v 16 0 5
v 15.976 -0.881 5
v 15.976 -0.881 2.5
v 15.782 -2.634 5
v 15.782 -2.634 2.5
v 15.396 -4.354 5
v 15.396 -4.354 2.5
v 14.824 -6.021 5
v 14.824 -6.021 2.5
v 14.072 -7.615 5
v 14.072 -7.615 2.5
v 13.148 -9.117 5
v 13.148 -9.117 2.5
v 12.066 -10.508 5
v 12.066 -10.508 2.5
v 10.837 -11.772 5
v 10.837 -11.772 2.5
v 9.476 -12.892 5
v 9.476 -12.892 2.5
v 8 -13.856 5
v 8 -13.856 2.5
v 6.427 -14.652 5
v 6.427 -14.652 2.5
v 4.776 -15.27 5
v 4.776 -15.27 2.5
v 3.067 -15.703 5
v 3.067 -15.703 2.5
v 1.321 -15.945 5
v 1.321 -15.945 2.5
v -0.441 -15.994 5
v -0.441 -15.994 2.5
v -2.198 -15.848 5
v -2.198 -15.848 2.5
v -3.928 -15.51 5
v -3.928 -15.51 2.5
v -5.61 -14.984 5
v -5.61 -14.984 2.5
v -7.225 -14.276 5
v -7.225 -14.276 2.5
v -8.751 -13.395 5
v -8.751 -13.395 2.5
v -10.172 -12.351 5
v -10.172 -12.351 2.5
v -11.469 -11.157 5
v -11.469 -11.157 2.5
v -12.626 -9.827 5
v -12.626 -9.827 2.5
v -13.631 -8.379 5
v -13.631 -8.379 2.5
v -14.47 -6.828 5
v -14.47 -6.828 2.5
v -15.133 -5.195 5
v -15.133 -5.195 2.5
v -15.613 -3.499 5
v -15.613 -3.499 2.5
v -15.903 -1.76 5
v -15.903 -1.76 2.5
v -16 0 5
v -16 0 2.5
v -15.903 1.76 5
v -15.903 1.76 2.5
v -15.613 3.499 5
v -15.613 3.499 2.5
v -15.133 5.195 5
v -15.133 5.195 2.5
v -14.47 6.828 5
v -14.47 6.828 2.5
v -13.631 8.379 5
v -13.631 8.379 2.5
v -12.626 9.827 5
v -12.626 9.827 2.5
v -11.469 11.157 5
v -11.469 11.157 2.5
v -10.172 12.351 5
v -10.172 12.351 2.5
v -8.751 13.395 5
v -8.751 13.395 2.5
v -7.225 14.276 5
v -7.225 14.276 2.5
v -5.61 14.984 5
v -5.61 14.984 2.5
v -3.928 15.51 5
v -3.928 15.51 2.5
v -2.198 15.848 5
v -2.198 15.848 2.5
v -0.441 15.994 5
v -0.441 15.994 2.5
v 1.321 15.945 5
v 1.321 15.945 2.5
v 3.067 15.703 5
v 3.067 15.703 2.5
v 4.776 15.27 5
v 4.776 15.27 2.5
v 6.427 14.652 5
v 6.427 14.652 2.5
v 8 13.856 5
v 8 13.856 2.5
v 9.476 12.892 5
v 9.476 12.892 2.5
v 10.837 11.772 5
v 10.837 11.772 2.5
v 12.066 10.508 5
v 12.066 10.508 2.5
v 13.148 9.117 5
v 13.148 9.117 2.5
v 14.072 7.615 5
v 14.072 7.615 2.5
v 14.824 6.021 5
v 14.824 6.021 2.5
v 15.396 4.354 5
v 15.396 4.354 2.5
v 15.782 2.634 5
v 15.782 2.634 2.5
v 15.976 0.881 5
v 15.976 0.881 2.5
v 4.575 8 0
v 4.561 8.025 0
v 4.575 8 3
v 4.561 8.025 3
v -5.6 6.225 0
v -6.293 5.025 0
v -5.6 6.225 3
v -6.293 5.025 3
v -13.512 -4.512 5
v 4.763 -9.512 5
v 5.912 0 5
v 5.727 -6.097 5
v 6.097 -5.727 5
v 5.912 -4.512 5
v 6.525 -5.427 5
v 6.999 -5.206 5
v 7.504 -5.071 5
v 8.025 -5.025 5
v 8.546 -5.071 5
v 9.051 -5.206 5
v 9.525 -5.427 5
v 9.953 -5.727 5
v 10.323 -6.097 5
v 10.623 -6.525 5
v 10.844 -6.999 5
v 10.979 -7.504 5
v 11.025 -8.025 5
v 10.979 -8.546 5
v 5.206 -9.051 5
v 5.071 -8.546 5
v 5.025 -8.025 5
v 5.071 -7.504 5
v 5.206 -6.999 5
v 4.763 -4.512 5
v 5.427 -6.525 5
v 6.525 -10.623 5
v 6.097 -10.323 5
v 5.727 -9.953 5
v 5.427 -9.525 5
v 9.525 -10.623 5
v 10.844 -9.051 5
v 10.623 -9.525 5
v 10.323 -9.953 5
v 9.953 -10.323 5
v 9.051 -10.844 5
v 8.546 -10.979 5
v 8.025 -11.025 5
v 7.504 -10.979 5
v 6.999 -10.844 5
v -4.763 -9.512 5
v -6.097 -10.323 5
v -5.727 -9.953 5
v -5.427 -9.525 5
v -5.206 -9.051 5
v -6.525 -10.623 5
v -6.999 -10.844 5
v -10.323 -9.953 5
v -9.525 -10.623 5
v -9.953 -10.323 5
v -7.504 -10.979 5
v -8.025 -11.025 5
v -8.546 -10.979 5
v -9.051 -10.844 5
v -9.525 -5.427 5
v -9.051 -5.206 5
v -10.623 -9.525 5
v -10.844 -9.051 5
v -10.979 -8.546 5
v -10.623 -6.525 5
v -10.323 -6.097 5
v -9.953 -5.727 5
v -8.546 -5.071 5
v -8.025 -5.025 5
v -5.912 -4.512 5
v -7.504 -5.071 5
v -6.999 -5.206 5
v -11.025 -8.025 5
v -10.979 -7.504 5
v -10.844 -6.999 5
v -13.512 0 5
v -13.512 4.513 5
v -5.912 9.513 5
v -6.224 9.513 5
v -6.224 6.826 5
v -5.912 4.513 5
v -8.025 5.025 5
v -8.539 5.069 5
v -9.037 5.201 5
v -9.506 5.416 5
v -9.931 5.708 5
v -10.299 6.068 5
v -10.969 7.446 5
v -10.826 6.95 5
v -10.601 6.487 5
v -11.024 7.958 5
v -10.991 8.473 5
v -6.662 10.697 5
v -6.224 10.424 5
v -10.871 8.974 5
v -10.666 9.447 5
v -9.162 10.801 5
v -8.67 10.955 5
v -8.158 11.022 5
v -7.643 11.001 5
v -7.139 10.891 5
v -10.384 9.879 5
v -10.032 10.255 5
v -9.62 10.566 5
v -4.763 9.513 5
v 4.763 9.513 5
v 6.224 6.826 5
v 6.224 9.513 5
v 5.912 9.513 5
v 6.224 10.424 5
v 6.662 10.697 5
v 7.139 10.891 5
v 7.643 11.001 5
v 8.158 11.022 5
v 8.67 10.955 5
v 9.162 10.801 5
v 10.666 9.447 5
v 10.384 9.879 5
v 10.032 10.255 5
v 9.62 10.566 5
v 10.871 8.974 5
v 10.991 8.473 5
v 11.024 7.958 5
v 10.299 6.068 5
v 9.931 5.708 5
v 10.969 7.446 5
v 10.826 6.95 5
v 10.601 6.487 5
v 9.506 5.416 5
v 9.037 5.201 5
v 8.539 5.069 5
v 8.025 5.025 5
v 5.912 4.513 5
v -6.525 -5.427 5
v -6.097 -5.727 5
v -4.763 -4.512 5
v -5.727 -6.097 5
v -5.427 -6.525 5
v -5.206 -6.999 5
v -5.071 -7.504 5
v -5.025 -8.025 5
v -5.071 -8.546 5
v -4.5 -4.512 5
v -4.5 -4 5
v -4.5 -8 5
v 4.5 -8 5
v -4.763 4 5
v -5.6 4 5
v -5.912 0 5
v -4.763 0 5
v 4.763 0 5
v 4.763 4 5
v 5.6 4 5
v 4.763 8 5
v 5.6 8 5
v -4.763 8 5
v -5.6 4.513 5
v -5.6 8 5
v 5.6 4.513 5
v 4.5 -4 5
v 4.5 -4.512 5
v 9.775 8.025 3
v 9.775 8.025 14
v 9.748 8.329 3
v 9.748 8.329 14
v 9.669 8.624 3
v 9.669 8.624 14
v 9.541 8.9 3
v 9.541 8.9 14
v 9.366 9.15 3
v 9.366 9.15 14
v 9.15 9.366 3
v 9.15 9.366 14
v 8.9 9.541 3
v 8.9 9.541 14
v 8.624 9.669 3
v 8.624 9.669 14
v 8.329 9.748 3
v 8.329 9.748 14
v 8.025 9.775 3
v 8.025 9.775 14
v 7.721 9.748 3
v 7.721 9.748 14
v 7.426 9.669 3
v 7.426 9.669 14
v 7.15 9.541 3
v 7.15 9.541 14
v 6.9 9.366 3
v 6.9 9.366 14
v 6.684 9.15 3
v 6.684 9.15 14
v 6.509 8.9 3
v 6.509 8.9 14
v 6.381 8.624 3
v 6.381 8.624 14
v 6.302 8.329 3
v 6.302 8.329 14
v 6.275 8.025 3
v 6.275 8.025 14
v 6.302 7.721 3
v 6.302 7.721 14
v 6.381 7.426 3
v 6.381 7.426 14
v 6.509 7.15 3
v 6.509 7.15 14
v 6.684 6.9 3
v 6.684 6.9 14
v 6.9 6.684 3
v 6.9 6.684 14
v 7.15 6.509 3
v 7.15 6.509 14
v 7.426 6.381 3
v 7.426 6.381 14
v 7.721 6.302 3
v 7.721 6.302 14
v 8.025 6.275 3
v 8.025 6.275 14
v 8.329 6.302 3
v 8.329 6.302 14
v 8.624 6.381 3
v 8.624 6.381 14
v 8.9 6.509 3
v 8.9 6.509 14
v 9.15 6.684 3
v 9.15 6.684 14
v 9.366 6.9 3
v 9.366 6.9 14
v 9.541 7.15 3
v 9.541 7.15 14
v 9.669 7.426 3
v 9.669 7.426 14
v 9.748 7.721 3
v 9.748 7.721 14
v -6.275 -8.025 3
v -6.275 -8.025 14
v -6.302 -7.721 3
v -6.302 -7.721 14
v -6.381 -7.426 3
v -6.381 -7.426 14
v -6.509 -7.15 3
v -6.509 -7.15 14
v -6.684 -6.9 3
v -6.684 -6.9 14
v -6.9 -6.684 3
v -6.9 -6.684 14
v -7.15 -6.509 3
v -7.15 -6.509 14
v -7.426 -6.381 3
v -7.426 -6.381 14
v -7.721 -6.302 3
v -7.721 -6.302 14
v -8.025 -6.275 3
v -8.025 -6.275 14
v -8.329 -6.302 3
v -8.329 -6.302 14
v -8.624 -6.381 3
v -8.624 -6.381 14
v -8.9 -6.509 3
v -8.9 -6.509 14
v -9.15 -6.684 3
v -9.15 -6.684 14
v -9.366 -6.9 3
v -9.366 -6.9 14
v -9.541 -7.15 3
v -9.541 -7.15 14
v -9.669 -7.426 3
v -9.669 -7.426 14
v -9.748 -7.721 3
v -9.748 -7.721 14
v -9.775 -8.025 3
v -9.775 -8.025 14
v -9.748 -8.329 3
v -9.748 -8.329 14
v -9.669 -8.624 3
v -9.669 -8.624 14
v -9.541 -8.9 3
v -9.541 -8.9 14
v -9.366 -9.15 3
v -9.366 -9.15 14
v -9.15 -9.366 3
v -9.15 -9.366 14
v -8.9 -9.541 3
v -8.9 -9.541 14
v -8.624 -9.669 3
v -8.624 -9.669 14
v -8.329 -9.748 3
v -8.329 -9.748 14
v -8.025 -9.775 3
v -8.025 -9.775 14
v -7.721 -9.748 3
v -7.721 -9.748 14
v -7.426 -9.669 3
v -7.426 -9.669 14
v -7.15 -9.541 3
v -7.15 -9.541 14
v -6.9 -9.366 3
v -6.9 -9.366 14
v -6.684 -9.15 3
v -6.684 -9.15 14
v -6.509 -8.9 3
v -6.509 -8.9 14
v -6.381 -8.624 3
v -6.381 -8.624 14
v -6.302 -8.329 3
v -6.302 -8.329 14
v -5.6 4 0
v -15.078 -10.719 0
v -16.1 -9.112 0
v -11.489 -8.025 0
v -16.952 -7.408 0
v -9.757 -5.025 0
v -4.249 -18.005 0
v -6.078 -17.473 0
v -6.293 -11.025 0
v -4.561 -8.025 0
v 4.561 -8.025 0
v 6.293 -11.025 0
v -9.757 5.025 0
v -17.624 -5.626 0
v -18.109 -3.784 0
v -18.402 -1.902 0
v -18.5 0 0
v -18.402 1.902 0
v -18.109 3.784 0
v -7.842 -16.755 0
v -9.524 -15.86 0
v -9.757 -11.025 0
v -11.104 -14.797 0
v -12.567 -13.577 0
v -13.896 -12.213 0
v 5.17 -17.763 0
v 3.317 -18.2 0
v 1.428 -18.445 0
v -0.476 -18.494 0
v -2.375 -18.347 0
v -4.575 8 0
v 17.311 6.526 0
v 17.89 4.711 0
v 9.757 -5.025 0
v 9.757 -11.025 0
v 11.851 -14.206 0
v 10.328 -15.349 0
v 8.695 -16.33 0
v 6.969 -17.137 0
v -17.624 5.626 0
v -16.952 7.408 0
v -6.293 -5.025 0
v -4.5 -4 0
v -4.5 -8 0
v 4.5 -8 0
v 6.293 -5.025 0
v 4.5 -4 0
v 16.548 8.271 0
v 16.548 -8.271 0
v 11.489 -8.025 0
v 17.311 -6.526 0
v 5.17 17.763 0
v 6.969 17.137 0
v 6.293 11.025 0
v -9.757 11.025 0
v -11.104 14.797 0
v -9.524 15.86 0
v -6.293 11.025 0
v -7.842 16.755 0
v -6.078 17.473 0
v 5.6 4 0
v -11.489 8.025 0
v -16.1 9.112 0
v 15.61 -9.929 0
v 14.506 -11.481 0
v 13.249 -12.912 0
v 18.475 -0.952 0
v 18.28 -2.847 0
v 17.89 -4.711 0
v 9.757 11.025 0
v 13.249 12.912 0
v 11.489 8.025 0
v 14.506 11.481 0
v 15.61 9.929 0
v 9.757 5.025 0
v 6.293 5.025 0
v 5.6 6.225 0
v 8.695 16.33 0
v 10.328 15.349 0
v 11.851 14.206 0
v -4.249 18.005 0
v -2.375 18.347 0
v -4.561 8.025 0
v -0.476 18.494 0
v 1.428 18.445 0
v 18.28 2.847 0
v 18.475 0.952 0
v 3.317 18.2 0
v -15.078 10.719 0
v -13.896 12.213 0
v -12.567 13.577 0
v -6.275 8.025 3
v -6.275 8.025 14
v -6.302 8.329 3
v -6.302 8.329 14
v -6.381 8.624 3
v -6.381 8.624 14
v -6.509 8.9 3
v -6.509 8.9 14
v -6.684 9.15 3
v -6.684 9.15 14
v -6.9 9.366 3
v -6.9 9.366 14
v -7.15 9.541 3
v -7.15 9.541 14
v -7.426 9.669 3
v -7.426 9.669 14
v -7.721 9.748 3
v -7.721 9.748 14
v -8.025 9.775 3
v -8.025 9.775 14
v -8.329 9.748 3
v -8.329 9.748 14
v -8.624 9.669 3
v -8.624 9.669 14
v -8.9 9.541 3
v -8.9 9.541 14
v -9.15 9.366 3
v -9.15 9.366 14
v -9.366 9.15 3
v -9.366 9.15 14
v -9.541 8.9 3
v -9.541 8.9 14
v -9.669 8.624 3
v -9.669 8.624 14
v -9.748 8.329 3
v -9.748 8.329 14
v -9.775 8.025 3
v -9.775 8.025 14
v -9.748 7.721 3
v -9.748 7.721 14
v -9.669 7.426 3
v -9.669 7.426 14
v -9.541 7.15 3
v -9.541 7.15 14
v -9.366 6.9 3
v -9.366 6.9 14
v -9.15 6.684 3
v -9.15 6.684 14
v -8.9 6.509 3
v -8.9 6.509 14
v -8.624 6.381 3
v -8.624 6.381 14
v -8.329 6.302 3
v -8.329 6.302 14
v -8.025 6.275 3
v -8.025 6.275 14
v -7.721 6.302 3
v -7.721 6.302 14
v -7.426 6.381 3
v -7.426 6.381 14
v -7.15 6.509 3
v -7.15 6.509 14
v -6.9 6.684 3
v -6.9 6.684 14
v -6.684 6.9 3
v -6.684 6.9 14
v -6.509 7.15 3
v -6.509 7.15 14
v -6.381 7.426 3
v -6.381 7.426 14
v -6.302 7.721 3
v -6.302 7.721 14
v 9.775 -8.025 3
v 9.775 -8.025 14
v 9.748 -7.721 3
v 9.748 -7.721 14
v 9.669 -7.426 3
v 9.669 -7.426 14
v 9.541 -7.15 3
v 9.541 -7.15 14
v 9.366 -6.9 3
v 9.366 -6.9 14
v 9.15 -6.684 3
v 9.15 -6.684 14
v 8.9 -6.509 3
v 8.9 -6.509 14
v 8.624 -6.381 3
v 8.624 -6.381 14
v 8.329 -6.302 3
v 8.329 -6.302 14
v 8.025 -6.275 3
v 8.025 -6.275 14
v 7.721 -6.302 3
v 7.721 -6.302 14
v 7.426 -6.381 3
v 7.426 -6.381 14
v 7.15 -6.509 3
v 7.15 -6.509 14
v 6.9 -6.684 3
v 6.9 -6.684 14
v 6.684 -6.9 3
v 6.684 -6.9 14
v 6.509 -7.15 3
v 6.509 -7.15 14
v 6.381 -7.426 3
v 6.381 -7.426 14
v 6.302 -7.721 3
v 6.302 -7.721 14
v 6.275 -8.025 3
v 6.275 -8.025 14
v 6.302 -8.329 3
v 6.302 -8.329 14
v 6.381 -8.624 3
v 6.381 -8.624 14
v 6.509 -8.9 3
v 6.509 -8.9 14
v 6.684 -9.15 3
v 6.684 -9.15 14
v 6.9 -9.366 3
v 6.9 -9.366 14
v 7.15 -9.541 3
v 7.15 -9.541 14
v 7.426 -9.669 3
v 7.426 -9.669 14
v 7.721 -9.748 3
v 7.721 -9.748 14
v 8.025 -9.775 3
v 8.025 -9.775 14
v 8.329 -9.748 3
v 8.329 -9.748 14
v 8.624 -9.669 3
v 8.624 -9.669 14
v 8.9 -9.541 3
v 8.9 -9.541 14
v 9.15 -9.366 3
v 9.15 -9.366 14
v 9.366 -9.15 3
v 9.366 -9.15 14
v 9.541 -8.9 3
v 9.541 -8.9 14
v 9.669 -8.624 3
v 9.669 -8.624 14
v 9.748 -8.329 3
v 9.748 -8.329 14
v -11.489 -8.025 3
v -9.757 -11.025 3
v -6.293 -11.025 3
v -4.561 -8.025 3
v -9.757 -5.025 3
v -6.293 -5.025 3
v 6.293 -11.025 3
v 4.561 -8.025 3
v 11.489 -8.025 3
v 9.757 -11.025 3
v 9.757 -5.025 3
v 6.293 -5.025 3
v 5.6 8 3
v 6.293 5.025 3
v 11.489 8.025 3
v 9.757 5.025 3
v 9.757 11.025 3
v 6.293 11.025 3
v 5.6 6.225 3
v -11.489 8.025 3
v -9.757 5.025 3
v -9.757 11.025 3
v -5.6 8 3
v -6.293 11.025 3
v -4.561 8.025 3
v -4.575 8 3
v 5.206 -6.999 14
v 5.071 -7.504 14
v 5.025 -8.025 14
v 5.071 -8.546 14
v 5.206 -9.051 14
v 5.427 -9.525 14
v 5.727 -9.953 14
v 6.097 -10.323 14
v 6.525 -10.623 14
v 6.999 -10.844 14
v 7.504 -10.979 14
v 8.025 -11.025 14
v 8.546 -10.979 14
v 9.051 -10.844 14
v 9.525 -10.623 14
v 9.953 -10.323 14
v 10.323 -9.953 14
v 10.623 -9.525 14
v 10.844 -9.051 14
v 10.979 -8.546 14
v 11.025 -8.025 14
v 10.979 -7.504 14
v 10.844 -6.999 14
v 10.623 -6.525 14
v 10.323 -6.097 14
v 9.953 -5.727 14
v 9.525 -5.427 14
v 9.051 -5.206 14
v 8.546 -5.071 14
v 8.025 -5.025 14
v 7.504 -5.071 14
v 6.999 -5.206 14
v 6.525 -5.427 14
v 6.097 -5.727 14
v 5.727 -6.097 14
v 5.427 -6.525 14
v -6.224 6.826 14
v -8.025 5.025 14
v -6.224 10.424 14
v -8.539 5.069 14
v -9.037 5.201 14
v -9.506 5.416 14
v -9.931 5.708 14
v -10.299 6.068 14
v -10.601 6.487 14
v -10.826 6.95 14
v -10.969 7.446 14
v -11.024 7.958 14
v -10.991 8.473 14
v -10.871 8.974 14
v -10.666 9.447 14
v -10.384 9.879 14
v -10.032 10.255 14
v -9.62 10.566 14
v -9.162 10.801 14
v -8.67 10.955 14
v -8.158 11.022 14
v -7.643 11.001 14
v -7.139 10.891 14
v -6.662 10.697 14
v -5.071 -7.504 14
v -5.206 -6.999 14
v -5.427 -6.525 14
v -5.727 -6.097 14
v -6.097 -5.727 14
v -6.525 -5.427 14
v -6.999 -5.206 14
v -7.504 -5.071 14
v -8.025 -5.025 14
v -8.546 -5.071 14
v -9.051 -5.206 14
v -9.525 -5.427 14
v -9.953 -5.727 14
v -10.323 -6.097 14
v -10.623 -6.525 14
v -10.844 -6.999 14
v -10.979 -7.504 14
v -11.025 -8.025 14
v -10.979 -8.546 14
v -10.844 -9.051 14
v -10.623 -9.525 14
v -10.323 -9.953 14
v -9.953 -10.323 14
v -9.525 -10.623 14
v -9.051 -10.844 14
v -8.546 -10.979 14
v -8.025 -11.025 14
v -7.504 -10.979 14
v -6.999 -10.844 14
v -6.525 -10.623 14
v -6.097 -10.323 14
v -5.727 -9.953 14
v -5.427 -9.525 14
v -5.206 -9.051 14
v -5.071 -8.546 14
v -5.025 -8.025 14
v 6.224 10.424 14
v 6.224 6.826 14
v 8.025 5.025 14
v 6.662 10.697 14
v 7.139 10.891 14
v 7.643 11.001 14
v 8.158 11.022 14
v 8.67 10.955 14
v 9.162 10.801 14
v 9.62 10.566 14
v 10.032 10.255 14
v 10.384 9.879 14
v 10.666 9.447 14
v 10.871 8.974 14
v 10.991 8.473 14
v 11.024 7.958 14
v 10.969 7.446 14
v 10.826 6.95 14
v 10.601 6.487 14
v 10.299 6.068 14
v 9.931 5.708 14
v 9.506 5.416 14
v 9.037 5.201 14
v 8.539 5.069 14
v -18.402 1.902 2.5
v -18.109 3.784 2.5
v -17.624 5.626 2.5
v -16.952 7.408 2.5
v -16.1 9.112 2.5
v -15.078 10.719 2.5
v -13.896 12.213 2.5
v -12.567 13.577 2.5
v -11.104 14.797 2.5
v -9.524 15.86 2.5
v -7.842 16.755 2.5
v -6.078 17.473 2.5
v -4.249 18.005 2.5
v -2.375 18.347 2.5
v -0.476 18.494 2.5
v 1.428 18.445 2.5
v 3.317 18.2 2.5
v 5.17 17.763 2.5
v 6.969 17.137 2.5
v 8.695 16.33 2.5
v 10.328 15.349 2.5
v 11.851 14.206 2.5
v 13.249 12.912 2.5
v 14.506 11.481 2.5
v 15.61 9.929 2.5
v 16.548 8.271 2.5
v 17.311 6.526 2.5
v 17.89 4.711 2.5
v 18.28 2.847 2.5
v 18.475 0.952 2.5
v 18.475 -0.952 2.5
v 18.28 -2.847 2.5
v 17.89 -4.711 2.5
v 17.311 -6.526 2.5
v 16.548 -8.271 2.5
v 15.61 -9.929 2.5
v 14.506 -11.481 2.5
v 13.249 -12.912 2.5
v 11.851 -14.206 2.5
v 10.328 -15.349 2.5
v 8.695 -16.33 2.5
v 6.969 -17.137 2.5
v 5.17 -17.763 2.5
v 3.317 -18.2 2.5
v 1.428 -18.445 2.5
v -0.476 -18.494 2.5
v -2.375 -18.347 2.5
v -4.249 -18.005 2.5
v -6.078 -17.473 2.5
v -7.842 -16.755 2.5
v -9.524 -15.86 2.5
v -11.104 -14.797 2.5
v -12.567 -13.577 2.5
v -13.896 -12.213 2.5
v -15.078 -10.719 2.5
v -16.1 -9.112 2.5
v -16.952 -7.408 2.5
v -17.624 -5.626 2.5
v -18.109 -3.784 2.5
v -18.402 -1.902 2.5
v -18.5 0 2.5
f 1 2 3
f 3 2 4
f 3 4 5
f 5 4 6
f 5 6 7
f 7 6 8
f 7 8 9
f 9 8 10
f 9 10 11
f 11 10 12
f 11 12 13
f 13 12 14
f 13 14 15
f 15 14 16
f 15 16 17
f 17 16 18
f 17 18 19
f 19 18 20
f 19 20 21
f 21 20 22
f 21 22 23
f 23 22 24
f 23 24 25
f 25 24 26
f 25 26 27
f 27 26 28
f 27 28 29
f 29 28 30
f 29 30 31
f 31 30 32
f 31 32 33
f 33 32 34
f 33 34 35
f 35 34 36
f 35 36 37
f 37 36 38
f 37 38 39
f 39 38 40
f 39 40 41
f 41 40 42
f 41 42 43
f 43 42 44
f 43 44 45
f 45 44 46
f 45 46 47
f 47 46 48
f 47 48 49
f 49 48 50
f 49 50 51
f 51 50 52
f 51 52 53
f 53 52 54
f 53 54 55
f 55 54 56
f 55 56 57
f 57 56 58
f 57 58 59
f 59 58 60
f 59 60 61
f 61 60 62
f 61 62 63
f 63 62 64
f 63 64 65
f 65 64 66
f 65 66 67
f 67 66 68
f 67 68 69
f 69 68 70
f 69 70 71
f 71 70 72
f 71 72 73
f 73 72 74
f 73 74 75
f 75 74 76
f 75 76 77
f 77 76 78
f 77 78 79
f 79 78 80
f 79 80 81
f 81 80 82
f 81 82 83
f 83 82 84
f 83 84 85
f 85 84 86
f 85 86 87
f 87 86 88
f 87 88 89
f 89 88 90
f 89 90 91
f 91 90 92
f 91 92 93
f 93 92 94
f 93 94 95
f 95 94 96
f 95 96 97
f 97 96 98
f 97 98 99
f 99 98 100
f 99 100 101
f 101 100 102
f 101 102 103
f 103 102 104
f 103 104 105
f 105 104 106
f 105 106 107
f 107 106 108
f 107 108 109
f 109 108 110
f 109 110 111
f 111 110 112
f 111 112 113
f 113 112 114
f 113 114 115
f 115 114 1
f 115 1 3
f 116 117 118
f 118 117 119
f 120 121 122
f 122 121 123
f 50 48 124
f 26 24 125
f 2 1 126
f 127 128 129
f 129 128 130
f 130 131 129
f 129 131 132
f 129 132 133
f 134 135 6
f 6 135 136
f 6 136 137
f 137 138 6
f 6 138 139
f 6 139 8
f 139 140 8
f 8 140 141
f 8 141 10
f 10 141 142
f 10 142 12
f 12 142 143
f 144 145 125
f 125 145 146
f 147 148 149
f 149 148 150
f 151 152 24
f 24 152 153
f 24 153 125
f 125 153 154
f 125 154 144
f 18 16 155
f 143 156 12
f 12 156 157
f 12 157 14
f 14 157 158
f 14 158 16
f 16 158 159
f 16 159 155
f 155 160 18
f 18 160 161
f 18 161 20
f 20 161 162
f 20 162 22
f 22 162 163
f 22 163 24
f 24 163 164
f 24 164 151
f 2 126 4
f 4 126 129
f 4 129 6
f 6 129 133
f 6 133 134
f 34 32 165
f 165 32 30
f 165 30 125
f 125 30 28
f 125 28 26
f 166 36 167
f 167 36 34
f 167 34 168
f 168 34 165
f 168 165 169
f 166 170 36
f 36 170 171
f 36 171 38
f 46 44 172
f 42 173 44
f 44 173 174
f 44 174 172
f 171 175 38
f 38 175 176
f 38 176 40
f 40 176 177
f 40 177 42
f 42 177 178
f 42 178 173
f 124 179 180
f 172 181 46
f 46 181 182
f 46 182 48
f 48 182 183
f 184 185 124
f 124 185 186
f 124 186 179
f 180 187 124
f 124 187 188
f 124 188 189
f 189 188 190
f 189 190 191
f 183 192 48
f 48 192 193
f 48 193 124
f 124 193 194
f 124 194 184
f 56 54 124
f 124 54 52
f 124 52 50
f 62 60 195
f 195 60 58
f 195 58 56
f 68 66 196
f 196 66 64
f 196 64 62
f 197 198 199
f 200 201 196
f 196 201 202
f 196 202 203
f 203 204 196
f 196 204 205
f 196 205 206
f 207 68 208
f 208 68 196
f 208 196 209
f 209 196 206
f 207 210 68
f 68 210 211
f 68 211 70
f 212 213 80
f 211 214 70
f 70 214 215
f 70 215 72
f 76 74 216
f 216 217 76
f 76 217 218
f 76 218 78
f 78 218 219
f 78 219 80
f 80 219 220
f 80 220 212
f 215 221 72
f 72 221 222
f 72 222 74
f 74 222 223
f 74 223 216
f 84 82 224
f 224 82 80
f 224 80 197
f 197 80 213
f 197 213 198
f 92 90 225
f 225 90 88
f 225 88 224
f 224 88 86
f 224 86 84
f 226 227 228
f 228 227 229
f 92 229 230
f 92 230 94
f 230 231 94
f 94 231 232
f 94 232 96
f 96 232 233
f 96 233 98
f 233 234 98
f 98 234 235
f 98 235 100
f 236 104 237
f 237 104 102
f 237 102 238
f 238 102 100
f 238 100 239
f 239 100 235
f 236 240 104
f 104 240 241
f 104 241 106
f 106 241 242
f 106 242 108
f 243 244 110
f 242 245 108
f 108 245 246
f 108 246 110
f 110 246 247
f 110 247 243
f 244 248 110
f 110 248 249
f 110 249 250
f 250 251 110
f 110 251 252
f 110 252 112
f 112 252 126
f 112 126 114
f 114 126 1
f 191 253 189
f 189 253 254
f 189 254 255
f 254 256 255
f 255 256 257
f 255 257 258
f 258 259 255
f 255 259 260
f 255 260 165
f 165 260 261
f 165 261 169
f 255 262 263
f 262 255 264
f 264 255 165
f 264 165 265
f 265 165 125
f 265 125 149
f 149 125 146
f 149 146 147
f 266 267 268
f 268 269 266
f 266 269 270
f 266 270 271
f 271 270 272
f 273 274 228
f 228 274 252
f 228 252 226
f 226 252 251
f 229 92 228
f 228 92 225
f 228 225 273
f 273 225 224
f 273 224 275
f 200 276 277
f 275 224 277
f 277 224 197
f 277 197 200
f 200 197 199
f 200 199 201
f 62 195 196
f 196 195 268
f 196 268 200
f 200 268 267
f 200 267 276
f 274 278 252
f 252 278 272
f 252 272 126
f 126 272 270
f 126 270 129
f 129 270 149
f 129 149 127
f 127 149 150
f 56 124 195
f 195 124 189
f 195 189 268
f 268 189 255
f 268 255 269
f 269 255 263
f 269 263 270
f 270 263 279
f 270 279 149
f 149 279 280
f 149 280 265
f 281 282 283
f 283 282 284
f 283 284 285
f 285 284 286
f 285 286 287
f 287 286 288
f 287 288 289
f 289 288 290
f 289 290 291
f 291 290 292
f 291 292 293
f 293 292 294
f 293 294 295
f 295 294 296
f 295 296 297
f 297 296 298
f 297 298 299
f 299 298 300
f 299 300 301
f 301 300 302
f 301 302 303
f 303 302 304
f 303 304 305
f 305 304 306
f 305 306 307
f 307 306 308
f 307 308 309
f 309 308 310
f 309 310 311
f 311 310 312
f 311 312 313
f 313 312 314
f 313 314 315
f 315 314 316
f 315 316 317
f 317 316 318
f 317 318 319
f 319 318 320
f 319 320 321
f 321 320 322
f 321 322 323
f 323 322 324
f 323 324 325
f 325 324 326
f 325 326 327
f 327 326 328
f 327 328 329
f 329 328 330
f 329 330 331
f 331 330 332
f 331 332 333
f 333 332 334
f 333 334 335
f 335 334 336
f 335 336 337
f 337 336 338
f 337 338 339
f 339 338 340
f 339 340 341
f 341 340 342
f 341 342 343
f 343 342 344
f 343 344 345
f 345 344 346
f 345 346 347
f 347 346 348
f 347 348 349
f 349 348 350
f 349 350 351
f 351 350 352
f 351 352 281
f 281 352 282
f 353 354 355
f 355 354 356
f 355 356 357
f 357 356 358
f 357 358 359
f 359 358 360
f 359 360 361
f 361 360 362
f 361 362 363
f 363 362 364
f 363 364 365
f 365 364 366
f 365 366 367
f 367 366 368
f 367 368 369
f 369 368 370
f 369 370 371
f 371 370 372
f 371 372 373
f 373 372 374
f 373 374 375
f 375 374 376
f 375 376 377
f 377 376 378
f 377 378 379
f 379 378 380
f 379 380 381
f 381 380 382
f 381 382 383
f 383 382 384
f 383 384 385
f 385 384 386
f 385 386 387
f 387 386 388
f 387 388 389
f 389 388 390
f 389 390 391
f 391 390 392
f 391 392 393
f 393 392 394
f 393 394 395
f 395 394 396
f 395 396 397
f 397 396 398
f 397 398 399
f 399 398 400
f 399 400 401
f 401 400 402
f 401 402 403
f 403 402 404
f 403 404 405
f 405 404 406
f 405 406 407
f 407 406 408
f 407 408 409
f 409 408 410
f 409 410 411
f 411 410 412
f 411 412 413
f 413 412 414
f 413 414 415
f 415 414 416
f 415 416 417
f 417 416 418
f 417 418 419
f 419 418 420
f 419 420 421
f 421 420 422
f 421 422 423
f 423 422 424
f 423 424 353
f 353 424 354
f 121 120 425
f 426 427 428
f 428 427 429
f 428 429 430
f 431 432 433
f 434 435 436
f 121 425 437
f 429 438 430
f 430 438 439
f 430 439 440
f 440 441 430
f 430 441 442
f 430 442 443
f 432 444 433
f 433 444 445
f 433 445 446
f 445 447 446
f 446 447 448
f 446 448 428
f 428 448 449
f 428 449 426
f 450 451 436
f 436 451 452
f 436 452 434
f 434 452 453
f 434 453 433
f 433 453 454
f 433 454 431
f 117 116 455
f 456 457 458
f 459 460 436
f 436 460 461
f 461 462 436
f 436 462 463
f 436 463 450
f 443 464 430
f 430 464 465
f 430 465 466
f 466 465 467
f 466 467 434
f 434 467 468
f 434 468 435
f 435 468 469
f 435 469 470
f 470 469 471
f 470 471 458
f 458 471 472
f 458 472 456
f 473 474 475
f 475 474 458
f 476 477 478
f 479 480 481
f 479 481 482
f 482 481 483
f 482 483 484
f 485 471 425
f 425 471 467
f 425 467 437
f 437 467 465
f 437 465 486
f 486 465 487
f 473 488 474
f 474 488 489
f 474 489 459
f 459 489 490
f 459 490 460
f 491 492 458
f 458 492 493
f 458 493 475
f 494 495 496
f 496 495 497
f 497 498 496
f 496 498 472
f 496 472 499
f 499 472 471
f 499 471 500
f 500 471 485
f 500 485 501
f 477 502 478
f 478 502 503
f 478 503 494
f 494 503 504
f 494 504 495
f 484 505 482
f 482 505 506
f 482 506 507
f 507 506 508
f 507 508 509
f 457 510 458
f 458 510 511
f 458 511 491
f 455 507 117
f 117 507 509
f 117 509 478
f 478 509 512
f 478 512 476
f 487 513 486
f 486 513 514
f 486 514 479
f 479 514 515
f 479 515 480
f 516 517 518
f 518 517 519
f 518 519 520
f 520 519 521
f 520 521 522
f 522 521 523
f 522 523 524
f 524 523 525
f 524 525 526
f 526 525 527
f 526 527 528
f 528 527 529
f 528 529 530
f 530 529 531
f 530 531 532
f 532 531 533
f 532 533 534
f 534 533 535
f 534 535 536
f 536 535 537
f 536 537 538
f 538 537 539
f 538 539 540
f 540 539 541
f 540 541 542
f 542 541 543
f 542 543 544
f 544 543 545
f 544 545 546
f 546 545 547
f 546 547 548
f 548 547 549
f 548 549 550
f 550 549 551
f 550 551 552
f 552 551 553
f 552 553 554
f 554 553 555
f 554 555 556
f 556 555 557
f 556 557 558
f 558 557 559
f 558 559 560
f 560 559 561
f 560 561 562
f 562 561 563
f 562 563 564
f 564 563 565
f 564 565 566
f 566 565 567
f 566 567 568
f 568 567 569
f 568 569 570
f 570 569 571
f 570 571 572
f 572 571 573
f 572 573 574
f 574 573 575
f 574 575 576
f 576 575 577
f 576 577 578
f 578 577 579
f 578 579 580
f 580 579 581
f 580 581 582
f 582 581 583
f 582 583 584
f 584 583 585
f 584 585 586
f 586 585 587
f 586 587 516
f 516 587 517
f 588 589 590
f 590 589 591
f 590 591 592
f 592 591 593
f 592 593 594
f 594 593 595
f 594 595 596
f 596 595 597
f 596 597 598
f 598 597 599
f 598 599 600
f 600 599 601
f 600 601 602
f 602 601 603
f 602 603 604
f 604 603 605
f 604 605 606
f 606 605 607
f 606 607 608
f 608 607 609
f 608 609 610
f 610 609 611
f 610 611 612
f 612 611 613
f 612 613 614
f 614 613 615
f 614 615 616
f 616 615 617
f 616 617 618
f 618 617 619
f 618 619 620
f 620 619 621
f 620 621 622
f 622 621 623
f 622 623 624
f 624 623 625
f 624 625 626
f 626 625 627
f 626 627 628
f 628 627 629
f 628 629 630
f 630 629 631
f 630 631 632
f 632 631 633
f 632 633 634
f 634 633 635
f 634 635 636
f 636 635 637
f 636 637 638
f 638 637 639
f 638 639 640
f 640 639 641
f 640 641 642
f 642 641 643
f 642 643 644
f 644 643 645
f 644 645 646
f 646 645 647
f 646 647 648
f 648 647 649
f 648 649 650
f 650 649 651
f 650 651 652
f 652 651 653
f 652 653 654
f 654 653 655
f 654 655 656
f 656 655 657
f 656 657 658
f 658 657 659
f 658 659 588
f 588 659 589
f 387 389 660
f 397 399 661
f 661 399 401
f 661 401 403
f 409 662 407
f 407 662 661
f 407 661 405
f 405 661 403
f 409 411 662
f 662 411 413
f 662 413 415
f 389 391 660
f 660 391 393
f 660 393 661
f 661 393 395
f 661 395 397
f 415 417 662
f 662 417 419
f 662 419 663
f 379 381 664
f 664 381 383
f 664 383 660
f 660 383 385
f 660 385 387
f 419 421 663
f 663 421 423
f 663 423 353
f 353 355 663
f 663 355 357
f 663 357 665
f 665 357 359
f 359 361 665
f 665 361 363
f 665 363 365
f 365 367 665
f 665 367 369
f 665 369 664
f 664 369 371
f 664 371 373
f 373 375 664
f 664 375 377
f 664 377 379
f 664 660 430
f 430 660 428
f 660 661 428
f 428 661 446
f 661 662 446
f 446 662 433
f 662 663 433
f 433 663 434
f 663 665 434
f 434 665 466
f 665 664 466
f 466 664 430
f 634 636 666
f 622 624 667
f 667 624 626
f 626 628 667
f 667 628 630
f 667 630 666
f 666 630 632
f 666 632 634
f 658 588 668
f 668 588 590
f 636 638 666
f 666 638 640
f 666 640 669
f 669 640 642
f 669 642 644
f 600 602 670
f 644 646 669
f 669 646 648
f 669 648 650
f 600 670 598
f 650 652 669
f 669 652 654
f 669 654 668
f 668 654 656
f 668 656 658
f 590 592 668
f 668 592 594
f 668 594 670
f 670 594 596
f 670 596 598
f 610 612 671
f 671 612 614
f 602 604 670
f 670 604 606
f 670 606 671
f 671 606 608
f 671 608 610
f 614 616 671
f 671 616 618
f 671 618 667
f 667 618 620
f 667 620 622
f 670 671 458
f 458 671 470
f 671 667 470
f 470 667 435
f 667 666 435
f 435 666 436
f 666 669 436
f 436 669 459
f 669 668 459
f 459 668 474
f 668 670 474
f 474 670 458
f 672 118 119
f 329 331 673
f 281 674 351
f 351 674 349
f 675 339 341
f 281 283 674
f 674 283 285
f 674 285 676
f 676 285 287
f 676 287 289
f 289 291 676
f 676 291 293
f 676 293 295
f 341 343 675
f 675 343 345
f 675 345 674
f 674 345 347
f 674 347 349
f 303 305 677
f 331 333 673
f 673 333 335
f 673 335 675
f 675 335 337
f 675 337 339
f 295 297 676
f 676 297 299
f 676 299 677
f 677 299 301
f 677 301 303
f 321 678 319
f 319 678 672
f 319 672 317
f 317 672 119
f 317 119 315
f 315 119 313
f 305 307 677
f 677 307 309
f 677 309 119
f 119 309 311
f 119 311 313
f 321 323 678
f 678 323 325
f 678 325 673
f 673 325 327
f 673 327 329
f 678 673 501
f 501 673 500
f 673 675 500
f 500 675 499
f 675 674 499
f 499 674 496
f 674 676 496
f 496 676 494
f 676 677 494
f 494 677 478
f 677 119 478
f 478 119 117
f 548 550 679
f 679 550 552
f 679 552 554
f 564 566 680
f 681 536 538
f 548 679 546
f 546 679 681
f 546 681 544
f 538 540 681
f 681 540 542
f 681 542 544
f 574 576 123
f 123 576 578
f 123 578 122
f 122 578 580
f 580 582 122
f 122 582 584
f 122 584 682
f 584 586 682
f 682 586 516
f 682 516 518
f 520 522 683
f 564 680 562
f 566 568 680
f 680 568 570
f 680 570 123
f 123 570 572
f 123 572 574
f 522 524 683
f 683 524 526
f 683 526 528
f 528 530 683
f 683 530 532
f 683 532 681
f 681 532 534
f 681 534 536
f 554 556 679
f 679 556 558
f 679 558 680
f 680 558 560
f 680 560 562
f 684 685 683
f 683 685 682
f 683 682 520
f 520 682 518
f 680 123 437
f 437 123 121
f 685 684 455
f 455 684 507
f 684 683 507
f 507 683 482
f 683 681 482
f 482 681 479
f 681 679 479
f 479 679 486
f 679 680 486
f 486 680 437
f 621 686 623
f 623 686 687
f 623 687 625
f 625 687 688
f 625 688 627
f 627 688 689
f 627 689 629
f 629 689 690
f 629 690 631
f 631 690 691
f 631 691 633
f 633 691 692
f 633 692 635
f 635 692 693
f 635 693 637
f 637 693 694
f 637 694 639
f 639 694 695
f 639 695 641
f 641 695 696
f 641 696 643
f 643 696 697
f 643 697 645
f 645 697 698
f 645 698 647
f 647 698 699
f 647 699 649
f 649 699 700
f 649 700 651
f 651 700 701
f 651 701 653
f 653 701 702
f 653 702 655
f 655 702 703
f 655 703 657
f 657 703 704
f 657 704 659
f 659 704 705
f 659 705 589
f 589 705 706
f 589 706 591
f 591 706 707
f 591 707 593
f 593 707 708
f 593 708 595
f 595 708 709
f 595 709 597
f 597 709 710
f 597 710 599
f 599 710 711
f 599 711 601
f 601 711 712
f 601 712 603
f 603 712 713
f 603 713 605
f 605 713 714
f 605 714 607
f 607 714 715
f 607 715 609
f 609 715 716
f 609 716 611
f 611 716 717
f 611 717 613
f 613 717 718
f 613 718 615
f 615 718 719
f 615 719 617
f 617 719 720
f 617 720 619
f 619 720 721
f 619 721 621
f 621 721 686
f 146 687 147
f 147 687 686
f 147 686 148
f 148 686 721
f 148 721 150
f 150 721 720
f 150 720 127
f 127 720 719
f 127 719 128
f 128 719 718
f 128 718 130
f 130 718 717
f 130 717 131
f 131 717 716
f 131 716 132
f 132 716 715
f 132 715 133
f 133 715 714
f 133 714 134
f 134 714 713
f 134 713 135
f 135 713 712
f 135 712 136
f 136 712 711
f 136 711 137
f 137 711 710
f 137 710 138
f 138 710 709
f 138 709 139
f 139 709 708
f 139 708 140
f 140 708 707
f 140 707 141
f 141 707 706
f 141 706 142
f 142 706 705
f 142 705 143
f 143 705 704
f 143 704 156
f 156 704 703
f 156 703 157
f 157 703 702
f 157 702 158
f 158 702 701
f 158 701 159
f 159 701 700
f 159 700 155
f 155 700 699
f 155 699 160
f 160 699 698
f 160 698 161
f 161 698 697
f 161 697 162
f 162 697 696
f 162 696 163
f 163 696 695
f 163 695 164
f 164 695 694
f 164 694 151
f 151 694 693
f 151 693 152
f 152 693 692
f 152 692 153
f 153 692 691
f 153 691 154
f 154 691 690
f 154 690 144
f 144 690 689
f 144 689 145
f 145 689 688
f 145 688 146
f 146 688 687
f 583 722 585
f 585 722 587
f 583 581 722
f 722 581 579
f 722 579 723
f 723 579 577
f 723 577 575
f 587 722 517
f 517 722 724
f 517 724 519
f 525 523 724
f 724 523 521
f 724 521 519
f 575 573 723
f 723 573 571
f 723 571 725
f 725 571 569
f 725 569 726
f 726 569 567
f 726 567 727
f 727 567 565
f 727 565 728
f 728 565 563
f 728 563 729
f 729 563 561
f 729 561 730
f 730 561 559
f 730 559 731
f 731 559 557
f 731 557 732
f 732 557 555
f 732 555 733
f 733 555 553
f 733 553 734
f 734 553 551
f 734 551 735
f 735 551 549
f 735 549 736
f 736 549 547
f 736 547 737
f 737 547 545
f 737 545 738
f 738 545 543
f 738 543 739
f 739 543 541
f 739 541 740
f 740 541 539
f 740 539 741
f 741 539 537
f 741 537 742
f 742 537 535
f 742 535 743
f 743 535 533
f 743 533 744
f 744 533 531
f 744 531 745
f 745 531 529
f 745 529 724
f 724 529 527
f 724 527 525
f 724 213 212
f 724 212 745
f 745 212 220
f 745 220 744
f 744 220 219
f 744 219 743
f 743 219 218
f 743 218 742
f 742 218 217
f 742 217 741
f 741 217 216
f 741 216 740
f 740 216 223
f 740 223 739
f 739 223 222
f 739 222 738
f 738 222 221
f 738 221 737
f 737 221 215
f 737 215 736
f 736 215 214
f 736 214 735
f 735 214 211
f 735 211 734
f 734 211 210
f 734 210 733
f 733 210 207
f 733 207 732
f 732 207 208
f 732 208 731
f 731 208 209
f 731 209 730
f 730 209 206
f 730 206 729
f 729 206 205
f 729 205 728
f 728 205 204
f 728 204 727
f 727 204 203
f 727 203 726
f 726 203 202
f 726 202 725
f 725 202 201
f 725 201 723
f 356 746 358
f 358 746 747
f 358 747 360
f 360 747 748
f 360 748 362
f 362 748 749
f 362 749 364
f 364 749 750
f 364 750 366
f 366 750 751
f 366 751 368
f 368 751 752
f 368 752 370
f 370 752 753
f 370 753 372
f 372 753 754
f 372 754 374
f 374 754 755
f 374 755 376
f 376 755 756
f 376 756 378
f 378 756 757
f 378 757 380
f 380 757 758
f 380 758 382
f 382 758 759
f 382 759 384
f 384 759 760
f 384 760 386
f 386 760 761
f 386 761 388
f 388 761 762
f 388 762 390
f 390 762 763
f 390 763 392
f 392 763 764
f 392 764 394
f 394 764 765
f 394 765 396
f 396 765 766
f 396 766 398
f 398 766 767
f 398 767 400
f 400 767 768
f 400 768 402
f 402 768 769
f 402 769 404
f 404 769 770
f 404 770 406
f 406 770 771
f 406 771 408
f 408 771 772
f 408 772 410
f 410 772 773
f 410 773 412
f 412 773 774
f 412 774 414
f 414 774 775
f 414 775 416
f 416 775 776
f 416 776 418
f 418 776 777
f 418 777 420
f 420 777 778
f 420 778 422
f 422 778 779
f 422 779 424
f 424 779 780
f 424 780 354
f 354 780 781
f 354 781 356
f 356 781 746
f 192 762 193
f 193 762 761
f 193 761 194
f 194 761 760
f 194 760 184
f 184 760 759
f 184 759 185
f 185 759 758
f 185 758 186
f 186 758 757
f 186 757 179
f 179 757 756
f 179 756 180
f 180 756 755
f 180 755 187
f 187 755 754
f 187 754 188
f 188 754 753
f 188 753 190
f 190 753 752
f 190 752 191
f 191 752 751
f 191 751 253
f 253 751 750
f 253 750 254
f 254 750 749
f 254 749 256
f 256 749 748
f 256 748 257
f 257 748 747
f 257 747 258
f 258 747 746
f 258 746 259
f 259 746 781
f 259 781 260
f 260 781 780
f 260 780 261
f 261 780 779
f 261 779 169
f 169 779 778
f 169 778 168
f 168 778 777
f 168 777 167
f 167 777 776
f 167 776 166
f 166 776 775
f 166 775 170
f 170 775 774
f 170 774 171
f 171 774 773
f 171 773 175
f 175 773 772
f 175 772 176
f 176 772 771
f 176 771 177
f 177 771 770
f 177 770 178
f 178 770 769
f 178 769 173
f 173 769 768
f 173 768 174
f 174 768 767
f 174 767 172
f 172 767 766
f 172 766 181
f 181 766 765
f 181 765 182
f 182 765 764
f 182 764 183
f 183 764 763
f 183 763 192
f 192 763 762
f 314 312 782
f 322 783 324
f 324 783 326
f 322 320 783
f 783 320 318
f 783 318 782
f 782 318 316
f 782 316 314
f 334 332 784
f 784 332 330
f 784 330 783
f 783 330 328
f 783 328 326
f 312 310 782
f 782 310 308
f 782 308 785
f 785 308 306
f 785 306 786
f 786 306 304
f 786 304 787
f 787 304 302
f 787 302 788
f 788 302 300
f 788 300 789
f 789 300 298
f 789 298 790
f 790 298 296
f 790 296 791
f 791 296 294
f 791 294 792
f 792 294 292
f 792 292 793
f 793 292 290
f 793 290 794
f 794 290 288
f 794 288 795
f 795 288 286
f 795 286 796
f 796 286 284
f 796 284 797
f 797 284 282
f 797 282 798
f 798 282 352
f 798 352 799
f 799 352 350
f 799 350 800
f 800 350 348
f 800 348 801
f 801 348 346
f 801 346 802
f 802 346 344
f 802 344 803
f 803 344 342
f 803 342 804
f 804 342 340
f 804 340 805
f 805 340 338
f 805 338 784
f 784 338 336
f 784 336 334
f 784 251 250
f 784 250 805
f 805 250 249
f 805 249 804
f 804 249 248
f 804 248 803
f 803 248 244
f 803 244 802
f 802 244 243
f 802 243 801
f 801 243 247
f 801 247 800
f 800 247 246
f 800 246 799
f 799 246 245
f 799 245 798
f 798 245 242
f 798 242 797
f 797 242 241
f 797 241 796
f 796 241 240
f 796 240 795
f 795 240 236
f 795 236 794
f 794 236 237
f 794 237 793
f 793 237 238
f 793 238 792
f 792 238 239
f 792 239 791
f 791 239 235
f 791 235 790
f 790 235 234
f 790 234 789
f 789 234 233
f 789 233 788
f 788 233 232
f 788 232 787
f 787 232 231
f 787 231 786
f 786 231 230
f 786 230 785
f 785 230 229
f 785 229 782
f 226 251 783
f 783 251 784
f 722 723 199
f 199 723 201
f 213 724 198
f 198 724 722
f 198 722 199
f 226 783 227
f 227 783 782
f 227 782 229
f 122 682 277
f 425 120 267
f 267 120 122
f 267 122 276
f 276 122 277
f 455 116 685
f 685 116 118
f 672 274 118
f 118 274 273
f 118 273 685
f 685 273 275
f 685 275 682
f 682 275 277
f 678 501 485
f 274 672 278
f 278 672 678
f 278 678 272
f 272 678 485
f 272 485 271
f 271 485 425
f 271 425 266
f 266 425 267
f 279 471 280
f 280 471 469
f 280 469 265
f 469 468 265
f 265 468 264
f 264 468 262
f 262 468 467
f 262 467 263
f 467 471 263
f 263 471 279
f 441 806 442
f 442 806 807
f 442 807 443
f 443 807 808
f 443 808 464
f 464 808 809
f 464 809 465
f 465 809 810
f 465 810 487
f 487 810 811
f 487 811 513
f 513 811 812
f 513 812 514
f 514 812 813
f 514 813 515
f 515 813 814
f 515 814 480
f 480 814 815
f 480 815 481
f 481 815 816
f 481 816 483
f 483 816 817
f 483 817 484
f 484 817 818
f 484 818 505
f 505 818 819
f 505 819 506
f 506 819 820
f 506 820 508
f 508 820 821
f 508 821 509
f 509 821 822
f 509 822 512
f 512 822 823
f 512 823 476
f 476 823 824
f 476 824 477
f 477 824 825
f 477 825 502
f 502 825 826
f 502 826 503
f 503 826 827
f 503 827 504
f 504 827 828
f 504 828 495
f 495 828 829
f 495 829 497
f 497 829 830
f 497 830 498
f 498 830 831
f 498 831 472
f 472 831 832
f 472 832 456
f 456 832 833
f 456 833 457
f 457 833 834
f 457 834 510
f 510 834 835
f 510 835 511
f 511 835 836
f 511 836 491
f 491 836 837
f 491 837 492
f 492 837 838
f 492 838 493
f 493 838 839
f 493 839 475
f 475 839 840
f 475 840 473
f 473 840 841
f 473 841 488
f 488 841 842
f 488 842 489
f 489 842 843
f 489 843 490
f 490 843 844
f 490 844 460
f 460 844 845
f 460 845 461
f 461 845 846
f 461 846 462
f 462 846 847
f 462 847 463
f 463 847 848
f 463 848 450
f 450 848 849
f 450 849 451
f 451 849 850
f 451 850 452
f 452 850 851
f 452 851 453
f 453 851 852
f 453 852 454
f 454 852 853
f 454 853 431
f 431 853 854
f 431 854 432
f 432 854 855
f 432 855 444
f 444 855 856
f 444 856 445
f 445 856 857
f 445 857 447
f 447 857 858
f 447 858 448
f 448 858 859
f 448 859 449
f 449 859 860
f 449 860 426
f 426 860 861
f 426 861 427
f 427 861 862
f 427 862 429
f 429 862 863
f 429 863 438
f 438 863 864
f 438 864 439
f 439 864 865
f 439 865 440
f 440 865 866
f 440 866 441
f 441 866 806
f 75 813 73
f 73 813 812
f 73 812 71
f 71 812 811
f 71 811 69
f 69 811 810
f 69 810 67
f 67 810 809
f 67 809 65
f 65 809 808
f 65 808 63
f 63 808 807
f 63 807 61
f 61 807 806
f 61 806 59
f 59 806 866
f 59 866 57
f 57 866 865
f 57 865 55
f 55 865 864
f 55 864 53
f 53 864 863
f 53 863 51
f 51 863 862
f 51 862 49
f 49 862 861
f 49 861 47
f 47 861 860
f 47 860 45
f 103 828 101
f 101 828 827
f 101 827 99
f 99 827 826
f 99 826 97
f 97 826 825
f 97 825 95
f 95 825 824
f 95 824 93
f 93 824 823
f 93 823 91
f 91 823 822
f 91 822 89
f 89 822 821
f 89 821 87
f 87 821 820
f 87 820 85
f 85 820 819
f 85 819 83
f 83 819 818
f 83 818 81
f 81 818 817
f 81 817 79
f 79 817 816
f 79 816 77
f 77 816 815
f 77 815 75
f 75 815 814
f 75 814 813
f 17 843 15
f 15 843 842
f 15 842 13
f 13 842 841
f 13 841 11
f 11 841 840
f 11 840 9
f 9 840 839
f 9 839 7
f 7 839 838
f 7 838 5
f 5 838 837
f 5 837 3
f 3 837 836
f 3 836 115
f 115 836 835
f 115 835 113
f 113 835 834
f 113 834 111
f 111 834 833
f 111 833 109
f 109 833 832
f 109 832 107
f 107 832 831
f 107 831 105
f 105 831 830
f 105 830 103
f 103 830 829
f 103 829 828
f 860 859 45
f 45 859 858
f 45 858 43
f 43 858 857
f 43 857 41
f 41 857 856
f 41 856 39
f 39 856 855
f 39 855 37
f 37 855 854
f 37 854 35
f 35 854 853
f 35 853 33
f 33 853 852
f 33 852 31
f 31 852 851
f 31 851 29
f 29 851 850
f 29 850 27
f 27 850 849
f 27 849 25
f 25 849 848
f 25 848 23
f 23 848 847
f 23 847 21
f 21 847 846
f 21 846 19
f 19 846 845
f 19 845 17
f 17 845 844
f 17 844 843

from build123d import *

# Parameters (mm, degrees)
CROQUIS1_R              = 16
SALIENTE_EXTRUIR1_DEPTH = 5
CROQUIS2_R              = 1.75
CORTAR_EXTRUIR1_DEPTH   = 24.173260453
CORTAR_EXTRUIR2_DEPTH   = 3
SALIENTE_EXTRUIR2_START = 9
CROQUIS4_R              = 3
CROQUIS4_R_2            = 1.75
SALIENTE_EXTRUIR2_DEPTH = 9
CORTAR_EXTRUIR3_DEPTH   = 9
CORTAR_EXTRUIR7_DEPTH   = 9
CROQUIS7_W              = 11.2
CROQUIS7_H              = 4
CROQUIS7_W_2            = 9
CORTAR_EXTRUIR8_DEPTH   = 25.351591324
CROQUIS8_R              = 18.5
CROQUIS8_R_2            = 16
SALIENTE_EXTRUIR3_DEPTH = 2.5


with BuildPart() as part:
    # Croquis1 → Saliente-Extruir1 (new body)
    with BuildSketch(Plane.XY):
        Circle(CROQUIS1_R)
    extrude(amount=SALIENTE_EXTRUIR1_DEPTH)

    # Croquis2 → Cortar-Extruir1 (cut, through all)
    with BuildSketch(Plane.XY.offset(5)):
        with Locations((-8.025, 8.025)):
            Circle(CROQUIS2_R)
        with Locations((8.025, 8.025)):
            Circle(CROQUIS2_R)
        with Locations((8.025, -8.025)):
            Circle(CROQUIS2_R)
        with Locations((-8.025, -8.025)):
            Circle(CROQUIS2_R)
    extrude(amount=-CORTAR_EXTRUIR1_DEPTH, mode=Mode.SUBTRACT)

    # Croquis3 → Cortar-Extruir2 (cut)
    with BuildSketch(Plane(origin=(0, 0, 0), x_dir=(-1, 0, 0), z_dir=(0, 0, -1))):
        Polygon((-4.560898385, 8.025), (-6.292949192, 11.025), (-9.757050808, 11.025), (-11.489101615, 8.025), (-9.757050808, 5.025), (-6.292949192, 5.025), align=None)
        Polygon((6.292949192, 5.025), (4.560898385, 8.025), (6.292949192, 11.025), (9.757050808, 11.025), (11.489101615, 8.025), (9.757050808, 5.025), align=None)
        Polygon((9.757050808, -5.025), (6.292949192, -5.025), (4.560898385, -8.025), (6.292949192, -11.025), (9.757050808, -11.025), (11.489101615, -8.025), align=None)
        Polygon((-6.292949192, -5.025), (-4.560898385, -8.025), (-6.292949192, -11.025), (-9.757050808, -11.025), (-11.489101615, -8.025), (-9.757050808, -5.025), align=None)
    extrude(amount=-CORTAR_EXTRUIR2_DEPTH, mode=Mode.SUBTRACT)

    # Croquis4 → Saliente-Extruir2 (add)
    # profile 1 of 4: a face of its own
    with BuildSketch(Plane.XY.offset(5).offset(SALIENTE_EXTRUIR2_START)):
        with Locations((-8.025, 8.025)):
            Circle(CROQUIS4_R)
        with Locations((-8.025, 8.025)):
            Circle(CROQUIS4_R_2, mode=Mode.SUBTRACT)
    # profile 2 of 4: a face of its own
    with BuildSketch(Plane.XY.offset(5).offset(SALIENTE_EXTRUIR2_START)):
        with Locations((8.025, 8.025)):
            Circle(CROQUIS4_R)
        with Locations((8.025, 8.025)):
            Circle(CROQUIS4_R_2, mode=Mode.SUBTRACT)
    # profile 3 of 4: a face of its own
    with BuildSketch(Plane.XY.offset(5).offset(SALIENTE_EXTRUIR2_START)):
        with Locations((-8.025, -8.025)):
            Circle(CROQUIS4_R)
        with Locations((-8.025, -8.025)):
            Circle(CROQUIS4_R_2, mode=Mode.SUBTRACT)
    # profile 4 of 4: a face of its own
    with BuildSketch(Plane.XY.offset(5).offset(SALIENTE_EXTRUIR2_START)):
        with Locations((8.025, -8.025)):
            Circle(CROQUIS4_R)
        with Locations((8.025, -8.025)):
            Circle(CROQUIS4_R_2, mode=Mode.SUBTRACT)
    extrude(amount=-SALIENTE_EXTRUIR2_DEPTH)

    # Croquis5 → Cortar-Extruir3 (cut)
    with BuildSketch(Plane.XY.offset(14)):
        with BuildLine():
            Line((-5.025, 8.025), (-8.025, 5.025))
            ThreePointArc((-8.025, 5.025), (-5.903679656, 5.903679656), (-5.025, 8.025))
        make_face()
        with BuildLine():
            Line((5.025, 8.025), (8.025, 5.025))
            ThreePointArc((8.025, 5.025), (5.903679656, 5.903679656), (5.025, 8.025))
        make_face()
    extrude(amount=-CORTAR_EXTRUIR3_DEPTH, mode=Mode.SUBTRACT)

    # Croquis6 → Cortar-Extruir7 (cut)
    with BuildSketch(Plane.XY.offset(14)):
        with BuildLine():
            Line((-6.22430322, 6.82569678), (-5.025, 8.025))
            ThreePointArc((-5.025, 8.025), (-5.341523678, 9.366251218), (-6.22430322, 10.424477257))
            Line((-6.22430322, 10.424477257), (-6.22430322, 6.82569678))
        make_face()
        with BuildLine():
            Line((6.22430322, 10.424477257), (6.22430322, 6.82569678))
            Line((6.22430322, 6.82569678), (5.025, 8.025))
            ThreePointArc((5.025, 8.025), (5.341523678, 9.366251218), (6.22430322, 10.424477257))
        make_face()
    extrude(amount=-CORTAR_EXTRUIR7_DEPTH, mode=Mode.SUBTRACT)

    # Croquis7 → Cortar-Extruir8 (cut, through all)
    with BuildSketch(Plane.XY.offset(5)):
        with Locations((0, 6)):
            Rectangle(CROQUIS7_W, CROQUIS7_H)
        with Locations((0, -6)):
            Rectangle(CROQUIS7_W_2, CROQUIS7_H)
    extrude(amount=-CORTAR_EXTRUIR8_DEPTH, mode=Mode.SUBTRACT)

    # Croquis8 → Saliente-Extruir3 (add)
    with BuildSketch(Plane(origin=(0, 0, 0), x_dir=(-1, 0, 0), z_dir=(0, 0, -1))):
        Circle(CROQUIS8_R)
        Circle(CROQUIS8_R_2, mode=Mode.SUBTRACT)
    extrude(amount=-SALIENTE_EXTRUIR3_DEPTH)


solid = part.part
